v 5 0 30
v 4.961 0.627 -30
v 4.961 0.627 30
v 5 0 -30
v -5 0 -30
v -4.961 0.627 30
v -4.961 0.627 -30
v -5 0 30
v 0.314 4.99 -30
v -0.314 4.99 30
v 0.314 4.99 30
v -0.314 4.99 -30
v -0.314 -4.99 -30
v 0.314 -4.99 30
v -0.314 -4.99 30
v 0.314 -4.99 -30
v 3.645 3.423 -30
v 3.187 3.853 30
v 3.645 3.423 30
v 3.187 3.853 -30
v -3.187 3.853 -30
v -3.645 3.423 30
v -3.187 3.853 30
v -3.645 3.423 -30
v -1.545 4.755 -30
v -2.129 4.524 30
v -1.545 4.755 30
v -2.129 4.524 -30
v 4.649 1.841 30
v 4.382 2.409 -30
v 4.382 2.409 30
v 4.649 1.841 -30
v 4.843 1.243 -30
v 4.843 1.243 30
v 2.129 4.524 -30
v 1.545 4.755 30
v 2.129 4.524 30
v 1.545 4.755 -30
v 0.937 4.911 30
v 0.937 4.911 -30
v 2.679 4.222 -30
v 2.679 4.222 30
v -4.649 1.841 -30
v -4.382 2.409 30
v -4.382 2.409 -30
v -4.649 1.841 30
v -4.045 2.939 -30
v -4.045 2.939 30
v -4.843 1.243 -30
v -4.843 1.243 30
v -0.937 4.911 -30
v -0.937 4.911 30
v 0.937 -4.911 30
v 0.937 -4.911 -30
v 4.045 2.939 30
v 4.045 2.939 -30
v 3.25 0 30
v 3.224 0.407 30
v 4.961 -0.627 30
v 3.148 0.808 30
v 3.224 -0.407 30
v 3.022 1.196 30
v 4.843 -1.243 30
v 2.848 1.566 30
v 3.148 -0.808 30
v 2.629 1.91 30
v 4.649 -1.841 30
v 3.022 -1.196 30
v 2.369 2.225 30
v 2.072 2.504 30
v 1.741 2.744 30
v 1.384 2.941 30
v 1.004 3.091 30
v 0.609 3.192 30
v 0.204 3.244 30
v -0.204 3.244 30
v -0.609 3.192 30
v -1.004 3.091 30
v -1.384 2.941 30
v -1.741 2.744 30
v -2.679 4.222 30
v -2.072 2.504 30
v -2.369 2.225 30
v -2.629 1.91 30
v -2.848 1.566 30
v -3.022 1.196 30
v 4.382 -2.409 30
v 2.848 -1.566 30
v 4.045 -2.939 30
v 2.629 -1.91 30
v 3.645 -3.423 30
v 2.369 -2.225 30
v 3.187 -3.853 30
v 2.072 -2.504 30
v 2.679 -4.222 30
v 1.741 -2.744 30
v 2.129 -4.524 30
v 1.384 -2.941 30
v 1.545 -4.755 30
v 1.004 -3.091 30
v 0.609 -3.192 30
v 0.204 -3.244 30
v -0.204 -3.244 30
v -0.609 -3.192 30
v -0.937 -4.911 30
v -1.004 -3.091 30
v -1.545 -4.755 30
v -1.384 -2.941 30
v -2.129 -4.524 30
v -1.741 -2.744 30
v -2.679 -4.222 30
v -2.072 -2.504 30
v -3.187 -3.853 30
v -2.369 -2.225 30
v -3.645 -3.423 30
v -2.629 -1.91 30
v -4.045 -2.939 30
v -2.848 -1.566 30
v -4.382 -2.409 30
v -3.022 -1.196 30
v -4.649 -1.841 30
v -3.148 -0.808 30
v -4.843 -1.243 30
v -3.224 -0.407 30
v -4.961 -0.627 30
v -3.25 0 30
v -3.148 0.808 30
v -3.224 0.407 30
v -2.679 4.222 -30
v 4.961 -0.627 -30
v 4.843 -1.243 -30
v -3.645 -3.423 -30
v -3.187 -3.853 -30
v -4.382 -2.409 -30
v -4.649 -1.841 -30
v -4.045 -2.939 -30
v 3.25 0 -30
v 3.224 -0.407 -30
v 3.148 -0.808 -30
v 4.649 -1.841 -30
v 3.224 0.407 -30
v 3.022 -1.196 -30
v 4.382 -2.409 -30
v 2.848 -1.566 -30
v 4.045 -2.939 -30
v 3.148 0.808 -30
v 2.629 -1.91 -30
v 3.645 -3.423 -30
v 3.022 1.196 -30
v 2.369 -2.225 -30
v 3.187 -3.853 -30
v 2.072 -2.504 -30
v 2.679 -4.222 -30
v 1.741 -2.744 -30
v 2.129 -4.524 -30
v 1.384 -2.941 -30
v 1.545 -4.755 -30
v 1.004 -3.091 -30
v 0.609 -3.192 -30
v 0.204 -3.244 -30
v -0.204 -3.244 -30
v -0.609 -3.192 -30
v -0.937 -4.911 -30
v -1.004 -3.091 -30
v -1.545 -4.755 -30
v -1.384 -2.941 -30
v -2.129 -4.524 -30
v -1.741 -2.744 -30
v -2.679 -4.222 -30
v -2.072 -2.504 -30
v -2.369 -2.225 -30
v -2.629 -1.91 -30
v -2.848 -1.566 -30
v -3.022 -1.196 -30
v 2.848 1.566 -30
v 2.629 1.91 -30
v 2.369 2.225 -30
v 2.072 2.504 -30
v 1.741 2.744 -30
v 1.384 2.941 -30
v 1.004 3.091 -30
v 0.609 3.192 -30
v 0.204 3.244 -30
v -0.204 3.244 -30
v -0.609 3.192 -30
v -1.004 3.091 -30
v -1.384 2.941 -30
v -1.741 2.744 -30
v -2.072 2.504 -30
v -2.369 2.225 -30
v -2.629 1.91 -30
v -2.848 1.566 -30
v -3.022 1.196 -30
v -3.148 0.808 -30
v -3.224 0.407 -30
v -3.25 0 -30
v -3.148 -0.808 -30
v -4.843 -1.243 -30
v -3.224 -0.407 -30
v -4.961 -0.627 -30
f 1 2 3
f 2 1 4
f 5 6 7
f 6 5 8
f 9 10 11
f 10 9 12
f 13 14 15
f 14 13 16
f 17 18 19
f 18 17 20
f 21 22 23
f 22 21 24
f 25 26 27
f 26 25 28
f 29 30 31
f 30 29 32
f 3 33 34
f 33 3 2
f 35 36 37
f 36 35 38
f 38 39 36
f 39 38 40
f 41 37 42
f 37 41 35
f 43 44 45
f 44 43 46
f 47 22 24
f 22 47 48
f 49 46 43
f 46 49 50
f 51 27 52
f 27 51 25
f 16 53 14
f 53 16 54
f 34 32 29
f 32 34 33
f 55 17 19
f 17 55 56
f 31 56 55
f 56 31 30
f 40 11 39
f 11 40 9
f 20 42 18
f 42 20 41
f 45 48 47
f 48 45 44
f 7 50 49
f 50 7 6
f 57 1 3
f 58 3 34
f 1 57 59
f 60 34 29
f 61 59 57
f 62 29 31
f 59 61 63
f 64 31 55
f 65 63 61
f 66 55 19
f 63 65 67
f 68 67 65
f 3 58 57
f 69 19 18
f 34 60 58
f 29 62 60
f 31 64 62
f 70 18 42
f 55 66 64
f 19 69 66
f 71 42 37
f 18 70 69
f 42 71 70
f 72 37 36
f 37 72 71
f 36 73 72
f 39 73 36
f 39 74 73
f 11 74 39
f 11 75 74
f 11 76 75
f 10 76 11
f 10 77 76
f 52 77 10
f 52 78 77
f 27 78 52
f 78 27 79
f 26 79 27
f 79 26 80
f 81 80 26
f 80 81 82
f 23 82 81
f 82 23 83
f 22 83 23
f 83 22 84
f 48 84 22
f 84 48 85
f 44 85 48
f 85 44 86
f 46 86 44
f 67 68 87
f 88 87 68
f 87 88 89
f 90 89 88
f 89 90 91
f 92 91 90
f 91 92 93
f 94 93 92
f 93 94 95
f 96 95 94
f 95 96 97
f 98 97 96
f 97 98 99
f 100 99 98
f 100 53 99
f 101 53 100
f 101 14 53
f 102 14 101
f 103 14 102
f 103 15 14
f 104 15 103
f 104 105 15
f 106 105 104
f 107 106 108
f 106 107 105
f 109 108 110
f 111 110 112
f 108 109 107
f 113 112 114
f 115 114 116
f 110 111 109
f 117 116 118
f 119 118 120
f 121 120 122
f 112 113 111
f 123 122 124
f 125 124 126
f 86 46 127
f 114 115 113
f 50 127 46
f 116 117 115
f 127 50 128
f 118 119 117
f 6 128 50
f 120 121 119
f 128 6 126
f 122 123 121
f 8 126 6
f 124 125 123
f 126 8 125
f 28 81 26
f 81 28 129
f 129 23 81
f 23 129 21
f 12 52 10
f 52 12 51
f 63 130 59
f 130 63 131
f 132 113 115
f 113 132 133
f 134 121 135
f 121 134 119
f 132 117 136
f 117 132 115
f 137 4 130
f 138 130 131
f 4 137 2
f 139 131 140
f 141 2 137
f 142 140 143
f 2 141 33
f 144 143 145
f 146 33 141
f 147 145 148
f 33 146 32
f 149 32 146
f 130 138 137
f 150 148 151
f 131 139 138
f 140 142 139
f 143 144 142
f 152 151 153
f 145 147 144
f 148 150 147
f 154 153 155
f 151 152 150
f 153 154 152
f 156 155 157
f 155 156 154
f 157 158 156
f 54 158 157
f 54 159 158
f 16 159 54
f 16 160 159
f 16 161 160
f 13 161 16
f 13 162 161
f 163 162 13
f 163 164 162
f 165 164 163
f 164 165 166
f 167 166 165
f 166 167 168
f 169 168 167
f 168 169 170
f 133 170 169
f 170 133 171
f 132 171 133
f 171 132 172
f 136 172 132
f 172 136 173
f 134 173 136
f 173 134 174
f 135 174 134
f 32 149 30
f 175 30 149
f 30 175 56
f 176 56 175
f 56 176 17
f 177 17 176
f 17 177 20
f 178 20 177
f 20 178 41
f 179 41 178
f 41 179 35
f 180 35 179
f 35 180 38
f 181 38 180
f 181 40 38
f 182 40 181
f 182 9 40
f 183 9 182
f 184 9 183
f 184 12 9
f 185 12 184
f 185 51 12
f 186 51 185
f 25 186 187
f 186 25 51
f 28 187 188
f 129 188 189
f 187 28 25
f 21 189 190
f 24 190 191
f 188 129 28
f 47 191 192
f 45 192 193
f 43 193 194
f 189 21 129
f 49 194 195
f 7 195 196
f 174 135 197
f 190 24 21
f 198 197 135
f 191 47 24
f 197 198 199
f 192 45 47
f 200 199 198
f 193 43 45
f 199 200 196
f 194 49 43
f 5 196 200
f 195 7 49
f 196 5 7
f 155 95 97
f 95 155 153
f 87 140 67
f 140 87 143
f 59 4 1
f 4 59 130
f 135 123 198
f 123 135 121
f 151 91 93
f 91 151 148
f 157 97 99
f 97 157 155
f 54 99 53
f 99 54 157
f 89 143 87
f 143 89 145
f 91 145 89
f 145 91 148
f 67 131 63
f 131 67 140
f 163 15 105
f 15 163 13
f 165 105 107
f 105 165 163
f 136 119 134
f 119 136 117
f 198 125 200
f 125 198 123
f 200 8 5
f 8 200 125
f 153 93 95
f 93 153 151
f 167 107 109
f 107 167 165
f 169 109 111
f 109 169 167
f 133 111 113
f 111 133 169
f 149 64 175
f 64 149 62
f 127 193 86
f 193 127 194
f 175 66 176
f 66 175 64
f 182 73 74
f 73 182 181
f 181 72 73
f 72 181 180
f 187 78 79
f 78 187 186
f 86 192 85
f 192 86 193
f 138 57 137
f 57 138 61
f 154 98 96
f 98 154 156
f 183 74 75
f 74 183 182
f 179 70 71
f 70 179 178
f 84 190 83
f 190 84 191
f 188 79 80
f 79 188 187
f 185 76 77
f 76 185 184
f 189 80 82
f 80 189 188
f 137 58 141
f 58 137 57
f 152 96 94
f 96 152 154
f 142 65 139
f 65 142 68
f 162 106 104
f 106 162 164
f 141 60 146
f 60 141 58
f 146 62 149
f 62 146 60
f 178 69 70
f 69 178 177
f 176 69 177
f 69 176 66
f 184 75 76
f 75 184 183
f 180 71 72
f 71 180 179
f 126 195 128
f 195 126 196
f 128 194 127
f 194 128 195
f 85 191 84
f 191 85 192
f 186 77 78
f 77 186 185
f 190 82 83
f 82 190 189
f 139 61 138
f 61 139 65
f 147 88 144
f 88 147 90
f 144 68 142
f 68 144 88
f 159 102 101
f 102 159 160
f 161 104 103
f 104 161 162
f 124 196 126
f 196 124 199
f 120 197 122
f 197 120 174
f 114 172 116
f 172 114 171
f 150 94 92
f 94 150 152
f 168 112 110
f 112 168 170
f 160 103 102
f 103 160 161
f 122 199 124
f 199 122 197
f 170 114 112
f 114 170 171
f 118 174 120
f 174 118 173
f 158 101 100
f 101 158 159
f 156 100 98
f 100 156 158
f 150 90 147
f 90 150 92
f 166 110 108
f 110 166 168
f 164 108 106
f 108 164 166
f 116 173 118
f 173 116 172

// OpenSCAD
$fn = 50;


difference() {
	union() {
		translate(v = [0, 0, -30.0000000000]) {
			cylinder(h = 60, r = 5.0000000000);
		}
	}
	union() {
		translate(v = [0, 0, -100.0000000000]) {
			cylinder(h = 200, r = 3.2500000000);
		}
	}
}
